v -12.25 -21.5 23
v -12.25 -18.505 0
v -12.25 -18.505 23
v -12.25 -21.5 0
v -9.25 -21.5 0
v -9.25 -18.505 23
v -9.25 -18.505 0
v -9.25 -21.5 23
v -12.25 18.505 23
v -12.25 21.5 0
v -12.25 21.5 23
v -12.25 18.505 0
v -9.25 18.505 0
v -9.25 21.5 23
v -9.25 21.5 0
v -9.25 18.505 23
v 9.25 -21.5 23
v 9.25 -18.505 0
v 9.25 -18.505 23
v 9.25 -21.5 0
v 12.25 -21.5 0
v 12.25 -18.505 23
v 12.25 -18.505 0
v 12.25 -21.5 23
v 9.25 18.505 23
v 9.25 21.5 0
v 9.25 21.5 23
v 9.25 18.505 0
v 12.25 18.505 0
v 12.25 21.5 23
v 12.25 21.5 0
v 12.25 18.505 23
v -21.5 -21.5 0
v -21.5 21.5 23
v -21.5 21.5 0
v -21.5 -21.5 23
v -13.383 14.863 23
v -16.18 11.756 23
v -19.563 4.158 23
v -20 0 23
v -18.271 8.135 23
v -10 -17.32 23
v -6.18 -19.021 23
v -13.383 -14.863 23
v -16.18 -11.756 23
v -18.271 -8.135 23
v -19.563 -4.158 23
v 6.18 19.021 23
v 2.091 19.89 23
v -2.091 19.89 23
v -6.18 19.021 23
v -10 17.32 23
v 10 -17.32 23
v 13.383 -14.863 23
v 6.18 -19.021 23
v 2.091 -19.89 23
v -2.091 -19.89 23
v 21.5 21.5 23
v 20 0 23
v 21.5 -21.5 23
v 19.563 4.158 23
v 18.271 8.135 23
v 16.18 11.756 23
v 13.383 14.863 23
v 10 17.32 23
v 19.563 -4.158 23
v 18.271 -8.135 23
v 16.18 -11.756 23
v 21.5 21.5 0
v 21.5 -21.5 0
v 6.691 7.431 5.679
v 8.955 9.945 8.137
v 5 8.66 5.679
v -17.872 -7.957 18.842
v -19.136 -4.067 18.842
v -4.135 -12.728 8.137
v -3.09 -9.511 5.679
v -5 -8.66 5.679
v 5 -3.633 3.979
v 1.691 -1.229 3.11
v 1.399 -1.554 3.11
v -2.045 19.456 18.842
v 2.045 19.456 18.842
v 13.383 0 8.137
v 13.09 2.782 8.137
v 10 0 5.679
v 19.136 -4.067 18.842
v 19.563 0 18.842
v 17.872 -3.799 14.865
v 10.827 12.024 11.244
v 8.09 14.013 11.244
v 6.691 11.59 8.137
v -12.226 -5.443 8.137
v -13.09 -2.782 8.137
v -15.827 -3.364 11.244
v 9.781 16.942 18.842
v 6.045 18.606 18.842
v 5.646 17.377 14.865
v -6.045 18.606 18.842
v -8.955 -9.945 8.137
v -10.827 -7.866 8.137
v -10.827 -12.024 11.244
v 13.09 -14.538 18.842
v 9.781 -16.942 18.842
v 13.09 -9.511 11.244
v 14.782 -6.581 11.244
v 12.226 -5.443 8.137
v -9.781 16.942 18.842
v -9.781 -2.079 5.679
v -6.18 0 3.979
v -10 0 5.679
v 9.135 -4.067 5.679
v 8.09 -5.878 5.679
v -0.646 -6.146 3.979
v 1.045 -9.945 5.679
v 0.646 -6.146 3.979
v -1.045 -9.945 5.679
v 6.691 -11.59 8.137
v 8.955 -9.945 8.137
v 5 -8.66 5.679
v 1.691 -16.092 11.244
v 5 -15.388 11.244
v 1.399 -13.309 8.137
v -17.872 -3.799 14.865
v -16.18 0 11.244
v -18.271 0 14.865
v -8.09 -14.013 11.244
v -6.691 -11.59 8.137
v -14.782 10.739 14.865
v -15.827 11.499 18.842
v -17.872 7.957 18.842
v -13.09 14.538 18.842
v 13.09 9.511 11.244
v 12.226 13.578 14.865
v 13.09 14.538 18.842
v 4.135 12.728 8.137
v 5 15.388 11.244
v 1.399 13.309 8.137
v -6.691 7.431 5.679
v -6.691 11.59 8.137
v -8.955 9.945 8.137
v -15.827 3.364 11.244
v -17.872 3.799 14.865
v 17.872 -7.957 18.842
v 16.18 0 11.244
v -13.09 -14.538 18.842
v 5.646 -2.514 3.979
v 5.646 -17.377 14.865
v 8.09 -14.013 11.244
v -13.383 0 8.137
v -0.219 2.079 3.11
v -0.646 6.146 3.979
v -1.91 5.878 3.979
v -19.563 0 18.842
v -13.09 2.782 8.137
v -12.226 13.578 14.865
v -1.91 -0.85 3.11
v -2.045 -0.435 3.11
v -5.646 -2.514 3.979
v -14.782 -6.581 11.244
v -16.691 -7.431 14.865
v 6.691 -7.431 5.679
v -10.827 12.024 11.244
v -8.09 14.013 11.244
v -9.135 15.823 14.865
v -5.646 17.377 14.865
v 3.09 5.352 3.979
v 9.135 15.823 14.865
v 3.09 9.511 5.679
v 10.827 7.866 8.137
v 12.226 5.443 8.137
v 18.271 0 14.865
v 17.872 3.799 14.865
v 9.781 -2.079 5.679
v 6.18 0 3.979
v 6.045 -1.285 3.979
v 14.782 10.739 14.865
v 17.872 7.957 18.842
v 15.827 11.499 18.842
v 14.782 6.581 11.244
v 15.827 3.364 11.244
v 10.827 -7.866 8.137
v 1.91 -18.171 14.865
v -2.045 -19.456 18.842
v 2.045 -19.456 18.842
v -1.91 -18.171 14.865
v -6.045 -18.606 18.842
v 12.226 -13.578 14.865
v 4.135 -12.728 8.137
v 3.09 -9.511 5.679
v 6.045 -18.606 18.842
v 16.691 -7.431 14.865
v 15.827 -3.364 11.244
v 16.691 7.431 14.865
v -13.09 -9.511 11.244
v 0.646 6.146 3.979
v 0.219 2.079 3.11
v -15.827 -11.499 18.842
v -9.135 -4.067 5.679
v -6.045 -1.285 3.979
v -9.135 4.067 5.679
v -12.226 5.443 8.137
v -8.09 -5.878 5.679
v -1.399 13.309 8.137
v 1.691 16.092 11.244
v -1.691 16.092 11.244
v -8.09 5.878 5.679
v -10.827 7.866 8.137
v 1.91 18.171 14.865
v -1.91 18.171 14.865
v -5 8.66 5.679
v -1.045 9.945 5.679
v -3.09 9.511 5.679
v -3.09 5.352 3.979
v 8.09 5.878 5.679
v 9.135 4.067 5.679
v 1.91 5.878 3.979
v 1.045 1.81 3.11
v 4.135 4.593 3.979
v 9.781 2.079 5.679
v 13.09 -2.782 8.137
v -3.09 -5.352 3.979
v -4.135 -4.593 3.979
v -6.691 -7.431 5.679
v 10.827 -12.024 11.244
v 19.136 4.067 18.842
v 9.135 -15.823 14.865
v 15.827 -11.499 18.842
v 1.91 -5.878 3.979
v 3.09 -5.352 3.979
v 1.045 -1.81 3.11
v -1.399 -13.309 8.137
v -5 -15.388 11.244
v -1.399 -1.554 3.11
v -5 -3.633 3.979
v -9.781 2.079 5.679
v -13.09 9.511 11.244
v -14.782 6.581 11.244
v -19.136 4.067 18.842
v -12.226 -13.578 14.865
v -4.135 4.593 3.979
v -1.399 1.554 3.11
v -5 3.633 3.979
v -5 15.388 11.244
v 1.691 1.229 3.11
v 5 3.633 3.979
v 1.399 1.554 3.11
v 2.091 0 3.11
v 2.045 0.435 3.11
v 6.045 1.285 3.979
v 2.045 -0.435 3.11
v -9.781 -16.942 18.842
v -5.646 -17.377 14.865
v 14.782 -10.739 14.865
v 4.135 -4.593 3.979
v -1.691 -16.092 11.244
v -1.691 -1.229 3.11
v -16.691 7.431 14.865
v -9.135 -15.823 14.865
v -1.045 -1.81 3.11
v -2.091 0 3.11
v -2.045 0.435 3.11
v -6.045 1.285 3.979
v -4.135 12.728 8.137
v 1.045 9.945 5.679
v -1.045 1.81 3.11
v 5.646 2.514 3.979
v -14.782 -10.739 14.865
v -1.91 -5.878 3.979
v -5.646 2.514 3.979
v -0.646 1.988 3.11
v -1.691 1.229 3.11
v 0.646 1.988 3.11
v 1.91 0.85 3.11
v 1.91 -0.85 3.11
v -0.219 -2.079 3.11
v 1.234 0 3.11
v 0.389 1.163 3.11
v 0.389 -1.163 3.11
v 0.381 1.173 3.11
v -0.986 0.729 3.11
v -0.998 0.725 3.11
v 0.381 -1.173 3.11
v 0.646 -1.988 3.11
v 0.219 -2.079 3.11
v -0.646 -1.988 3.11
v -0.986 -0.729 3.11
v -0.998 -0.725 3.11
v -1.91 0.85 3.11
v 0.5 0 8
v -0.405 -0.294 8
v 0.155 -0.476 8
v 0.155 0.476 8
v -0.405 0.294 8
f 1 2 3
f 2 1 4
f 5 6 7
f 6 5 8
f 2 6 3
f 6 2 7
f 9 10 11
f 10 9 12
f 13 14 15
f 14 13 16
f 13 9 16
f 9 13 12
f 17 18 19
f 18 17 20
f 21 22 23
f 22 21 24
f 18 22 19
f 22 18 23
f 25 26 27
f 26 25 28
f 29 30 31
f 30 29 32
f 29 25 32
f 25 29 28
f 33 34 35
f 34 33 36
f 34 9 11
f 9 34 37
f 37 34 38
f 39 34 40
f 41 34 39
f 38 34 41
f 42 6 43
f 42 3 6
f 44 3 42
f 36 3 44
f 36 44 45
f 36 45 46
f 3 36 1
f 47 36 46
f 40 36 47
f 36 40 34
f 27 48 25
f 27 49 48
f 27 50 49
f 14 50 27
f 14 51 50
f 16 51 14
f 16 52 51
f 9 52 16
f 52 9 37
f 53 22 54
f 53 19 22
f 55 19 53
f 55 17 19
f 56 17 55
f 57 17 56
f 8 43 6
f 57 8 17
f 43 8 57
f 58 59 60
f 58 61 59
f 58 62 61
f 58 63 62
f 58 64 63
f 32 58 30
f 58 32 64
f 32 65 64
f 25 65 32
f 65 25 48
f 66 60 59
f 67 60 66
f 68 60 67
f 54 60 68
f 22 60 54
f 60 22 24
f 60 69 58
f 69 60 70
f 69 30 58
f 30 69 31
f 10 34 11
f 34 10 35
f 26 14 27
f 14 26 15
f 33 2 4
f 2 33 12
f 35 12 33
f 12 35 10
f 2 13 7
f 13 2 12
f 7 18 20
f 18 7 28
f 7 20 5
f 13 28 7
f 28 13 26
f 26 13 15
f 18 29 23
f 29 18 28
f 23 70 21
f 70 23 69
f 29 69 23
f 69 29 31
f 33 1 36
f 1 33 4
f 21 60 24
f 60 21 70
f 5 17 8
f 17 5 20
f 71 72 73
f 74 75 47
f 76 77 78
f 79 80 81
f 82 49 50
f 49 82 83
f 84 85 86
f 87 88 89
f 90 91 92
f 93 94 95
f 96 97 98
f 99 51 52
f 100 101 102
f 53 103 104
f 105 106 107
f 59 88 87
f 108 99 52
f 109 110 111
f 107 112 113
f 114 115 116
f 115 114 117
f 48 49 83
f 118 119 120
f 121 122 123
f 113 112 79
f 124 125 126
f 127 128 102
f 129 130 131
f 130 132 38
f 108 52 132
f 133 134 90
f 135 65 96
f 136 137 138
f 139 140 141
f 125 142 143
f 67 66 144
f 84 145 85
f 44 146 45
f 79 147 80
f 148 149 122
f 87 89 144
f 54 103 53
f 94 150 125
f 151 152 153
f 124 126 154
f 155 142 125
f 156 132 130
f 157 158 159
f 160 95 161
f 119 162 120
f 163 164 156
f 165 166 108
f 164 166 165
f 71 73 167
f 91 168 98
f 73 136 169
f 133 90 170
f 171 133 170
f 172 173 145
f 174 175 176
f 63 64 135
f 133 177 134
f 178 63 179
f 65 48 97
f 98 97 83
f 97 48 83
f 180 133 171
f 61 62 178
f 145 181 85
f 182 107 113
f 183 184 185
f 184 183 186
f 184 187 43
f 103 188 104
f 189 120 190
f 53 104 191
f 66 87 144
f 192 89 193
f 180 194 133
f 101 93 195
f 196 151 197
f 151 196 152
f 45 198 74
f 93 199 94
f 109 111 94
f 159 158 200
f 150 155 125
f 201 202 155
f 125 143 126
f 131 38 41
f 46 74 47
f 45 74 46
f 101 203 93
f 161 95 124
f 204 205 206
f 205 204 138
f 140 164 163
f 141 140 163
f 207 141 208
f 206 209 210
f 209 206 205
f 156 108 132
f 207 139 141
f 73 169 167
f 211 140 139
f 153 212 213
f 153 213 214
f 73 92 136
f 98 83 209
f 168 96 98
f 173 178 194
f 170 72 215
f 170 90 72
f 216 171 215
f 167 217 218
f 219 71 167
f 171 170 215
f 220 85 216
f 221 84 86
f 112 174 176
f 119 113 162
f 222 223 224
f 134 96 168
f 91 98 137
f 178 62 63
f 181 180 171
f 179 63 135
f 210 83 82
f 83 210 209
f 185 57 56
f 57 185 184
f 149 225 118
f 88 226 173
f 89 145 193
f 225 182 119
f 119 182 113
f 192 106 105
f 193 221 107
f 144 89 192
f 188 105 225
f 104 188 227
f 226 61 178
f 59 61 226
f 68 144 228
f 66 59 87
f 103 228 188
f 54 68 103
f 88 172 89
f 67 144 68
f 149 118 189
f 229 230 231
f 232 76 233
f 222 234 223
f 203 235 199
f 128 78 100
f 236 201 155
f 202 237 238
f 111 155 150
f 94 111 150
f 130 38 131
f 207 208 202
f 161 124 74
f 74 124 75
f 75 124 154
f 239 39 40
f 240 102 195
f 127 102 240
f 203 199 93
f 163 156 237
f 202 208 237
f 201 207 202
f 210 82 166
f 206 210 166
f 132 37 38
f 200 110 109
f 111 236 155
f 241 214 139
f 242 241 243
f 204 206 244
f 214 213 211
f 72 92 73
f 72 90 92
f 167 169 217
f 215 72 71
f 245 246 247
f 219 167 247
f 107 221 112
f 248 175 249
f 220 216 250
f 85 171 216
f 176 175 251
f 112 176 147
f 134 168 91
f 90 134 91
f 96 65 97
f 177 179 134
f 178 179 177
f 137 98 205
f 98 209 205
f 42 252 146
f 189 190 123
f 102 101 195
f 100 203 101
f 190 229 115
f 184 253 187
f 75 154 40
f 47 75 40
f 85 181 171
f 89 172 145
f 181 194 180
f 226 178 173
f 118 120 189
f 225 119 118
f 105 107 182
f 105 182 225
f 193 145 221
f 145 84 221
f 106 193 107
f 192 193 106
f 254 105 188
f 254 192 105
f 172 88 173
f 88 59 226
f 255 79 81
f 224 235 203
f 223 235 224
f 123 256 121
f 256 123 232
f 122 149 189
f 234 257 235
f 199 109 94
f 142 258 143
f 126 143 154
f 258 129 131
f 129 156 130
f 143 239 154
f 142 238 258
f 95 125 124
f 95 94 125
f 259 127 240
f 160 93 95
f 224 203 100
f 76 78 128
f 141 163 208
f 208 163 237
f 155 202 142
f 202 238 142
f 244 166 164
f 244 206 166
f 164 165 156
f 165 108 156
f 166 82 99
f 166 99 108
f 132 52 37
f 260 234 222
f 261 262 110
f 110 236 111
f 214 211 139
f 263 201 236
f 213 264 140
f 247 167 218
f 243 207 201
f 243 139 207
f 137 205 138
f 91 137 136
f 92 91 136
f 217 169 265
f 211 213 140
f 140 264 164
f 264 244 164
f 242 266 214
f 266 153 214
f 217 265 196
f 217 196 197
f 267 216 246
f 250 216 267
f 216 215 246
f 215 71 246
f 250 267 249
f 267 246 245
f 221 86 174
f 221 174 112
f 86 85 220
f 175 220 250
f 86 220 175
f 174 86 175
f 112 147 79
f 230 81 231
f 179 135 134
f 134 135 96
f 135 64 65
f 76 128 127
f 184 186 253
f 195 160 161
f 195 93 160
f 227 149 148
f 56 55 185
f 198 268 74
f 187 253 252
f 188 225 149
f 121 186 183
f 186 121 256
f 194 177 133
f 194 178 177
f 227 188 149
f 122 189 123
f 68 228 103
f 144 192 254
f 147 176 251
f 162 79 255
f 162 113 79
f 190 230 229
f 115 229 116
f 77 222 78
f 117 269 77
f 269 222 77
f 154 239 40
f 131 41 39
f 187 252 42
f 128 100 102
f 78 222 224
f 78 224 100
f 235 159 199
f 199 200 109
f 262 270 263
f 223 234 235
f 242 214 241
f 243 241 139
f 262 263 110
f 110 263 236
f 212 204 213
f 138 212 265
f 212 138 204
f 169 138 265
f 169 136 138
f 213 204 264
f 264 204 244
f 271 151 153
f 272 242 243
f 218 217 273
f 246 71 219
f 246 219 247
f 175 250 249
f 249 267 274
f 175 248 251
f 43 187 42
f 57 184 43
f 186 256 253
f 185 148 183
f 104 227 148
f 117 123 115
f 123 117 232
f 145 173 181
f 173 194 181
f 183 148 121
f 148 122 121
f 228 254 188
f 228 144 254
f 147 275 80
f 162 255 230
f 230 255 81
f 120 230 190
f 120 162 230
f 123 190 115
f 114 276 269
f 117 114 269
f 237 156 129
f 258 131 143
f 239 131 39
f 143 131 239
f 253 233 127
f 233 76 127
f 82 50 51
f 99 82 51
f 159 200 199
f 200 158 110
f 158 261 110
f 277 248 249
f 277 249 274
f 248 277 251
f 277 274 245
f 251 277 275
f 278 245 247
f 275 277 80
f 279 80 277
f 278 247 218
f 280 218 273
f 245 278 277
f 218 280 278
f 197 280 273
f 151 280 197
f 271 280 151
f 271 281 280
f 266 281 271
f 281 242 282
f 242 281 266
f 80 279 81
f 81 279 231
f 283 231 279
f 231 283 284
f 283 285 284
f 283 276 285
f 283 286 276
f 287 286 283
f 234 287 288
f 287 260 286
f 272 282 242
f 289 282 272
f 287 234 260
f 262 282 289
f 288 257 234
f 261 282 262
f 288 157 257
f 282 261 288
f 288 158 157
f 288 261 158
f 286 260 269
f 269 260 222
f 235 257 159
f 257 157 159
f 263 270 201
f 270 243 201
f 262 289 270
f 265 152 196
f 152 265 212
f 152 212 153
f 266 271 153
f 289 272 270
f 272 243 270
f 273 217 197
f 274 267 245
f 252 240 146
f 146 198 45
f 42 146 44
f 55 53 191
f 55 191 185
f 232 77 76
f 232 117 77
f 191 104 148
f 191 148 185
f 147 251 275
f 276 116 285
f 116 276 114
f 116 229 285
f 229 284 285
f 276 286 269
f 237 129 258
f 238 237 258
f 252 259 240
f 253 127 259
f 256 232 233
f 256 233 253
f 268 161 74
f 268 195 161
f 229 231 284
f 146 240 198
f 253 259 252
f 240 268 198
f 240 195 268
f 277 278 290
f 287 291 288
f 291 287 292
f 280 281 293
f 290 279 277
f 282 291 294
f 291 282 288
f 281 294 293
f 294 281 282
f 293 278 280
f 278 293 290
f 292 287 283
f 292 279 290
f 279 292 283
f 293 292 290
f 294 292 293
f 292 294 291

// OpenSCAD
// file: cube_jig_common.scad
ball_diameter = 40.0;
wall = 3.0;
gap = 0;
e = 0.01;
slot = 3.0;
cube_size = [ball_diameter+wall,
             ball_diameter+wall,
             ball_diameter/2+wall-gap];

module jig() {
  difference() {
    translate([-cube_size[0]/2, -cube_size[1]/2, 0]) cube(cube_size);
    translate([0, 0, ball_diameter/2+wall]) sphere(d=ball_diameter);
    for (i = [-cube_size[0]/4, cube_size[0]/4]) {
        for (j = [(slot-cube_size[1]-e)/2, (e+cube_size[1]-slot)/2]) {
            translate([i,j,0]) cube([slot, slot, ball_diameter+wall*2+e], center=true);
        }
    }
  }
}

jig();
// main file
use <cube_jig_common.scad>;
sep = 9.0;
hole = 2.5;
wall = 3.0;

jig();
translate([0,0,wall]) cylinder(d2=1.0, d1=hole, h = 5, center=false); 
